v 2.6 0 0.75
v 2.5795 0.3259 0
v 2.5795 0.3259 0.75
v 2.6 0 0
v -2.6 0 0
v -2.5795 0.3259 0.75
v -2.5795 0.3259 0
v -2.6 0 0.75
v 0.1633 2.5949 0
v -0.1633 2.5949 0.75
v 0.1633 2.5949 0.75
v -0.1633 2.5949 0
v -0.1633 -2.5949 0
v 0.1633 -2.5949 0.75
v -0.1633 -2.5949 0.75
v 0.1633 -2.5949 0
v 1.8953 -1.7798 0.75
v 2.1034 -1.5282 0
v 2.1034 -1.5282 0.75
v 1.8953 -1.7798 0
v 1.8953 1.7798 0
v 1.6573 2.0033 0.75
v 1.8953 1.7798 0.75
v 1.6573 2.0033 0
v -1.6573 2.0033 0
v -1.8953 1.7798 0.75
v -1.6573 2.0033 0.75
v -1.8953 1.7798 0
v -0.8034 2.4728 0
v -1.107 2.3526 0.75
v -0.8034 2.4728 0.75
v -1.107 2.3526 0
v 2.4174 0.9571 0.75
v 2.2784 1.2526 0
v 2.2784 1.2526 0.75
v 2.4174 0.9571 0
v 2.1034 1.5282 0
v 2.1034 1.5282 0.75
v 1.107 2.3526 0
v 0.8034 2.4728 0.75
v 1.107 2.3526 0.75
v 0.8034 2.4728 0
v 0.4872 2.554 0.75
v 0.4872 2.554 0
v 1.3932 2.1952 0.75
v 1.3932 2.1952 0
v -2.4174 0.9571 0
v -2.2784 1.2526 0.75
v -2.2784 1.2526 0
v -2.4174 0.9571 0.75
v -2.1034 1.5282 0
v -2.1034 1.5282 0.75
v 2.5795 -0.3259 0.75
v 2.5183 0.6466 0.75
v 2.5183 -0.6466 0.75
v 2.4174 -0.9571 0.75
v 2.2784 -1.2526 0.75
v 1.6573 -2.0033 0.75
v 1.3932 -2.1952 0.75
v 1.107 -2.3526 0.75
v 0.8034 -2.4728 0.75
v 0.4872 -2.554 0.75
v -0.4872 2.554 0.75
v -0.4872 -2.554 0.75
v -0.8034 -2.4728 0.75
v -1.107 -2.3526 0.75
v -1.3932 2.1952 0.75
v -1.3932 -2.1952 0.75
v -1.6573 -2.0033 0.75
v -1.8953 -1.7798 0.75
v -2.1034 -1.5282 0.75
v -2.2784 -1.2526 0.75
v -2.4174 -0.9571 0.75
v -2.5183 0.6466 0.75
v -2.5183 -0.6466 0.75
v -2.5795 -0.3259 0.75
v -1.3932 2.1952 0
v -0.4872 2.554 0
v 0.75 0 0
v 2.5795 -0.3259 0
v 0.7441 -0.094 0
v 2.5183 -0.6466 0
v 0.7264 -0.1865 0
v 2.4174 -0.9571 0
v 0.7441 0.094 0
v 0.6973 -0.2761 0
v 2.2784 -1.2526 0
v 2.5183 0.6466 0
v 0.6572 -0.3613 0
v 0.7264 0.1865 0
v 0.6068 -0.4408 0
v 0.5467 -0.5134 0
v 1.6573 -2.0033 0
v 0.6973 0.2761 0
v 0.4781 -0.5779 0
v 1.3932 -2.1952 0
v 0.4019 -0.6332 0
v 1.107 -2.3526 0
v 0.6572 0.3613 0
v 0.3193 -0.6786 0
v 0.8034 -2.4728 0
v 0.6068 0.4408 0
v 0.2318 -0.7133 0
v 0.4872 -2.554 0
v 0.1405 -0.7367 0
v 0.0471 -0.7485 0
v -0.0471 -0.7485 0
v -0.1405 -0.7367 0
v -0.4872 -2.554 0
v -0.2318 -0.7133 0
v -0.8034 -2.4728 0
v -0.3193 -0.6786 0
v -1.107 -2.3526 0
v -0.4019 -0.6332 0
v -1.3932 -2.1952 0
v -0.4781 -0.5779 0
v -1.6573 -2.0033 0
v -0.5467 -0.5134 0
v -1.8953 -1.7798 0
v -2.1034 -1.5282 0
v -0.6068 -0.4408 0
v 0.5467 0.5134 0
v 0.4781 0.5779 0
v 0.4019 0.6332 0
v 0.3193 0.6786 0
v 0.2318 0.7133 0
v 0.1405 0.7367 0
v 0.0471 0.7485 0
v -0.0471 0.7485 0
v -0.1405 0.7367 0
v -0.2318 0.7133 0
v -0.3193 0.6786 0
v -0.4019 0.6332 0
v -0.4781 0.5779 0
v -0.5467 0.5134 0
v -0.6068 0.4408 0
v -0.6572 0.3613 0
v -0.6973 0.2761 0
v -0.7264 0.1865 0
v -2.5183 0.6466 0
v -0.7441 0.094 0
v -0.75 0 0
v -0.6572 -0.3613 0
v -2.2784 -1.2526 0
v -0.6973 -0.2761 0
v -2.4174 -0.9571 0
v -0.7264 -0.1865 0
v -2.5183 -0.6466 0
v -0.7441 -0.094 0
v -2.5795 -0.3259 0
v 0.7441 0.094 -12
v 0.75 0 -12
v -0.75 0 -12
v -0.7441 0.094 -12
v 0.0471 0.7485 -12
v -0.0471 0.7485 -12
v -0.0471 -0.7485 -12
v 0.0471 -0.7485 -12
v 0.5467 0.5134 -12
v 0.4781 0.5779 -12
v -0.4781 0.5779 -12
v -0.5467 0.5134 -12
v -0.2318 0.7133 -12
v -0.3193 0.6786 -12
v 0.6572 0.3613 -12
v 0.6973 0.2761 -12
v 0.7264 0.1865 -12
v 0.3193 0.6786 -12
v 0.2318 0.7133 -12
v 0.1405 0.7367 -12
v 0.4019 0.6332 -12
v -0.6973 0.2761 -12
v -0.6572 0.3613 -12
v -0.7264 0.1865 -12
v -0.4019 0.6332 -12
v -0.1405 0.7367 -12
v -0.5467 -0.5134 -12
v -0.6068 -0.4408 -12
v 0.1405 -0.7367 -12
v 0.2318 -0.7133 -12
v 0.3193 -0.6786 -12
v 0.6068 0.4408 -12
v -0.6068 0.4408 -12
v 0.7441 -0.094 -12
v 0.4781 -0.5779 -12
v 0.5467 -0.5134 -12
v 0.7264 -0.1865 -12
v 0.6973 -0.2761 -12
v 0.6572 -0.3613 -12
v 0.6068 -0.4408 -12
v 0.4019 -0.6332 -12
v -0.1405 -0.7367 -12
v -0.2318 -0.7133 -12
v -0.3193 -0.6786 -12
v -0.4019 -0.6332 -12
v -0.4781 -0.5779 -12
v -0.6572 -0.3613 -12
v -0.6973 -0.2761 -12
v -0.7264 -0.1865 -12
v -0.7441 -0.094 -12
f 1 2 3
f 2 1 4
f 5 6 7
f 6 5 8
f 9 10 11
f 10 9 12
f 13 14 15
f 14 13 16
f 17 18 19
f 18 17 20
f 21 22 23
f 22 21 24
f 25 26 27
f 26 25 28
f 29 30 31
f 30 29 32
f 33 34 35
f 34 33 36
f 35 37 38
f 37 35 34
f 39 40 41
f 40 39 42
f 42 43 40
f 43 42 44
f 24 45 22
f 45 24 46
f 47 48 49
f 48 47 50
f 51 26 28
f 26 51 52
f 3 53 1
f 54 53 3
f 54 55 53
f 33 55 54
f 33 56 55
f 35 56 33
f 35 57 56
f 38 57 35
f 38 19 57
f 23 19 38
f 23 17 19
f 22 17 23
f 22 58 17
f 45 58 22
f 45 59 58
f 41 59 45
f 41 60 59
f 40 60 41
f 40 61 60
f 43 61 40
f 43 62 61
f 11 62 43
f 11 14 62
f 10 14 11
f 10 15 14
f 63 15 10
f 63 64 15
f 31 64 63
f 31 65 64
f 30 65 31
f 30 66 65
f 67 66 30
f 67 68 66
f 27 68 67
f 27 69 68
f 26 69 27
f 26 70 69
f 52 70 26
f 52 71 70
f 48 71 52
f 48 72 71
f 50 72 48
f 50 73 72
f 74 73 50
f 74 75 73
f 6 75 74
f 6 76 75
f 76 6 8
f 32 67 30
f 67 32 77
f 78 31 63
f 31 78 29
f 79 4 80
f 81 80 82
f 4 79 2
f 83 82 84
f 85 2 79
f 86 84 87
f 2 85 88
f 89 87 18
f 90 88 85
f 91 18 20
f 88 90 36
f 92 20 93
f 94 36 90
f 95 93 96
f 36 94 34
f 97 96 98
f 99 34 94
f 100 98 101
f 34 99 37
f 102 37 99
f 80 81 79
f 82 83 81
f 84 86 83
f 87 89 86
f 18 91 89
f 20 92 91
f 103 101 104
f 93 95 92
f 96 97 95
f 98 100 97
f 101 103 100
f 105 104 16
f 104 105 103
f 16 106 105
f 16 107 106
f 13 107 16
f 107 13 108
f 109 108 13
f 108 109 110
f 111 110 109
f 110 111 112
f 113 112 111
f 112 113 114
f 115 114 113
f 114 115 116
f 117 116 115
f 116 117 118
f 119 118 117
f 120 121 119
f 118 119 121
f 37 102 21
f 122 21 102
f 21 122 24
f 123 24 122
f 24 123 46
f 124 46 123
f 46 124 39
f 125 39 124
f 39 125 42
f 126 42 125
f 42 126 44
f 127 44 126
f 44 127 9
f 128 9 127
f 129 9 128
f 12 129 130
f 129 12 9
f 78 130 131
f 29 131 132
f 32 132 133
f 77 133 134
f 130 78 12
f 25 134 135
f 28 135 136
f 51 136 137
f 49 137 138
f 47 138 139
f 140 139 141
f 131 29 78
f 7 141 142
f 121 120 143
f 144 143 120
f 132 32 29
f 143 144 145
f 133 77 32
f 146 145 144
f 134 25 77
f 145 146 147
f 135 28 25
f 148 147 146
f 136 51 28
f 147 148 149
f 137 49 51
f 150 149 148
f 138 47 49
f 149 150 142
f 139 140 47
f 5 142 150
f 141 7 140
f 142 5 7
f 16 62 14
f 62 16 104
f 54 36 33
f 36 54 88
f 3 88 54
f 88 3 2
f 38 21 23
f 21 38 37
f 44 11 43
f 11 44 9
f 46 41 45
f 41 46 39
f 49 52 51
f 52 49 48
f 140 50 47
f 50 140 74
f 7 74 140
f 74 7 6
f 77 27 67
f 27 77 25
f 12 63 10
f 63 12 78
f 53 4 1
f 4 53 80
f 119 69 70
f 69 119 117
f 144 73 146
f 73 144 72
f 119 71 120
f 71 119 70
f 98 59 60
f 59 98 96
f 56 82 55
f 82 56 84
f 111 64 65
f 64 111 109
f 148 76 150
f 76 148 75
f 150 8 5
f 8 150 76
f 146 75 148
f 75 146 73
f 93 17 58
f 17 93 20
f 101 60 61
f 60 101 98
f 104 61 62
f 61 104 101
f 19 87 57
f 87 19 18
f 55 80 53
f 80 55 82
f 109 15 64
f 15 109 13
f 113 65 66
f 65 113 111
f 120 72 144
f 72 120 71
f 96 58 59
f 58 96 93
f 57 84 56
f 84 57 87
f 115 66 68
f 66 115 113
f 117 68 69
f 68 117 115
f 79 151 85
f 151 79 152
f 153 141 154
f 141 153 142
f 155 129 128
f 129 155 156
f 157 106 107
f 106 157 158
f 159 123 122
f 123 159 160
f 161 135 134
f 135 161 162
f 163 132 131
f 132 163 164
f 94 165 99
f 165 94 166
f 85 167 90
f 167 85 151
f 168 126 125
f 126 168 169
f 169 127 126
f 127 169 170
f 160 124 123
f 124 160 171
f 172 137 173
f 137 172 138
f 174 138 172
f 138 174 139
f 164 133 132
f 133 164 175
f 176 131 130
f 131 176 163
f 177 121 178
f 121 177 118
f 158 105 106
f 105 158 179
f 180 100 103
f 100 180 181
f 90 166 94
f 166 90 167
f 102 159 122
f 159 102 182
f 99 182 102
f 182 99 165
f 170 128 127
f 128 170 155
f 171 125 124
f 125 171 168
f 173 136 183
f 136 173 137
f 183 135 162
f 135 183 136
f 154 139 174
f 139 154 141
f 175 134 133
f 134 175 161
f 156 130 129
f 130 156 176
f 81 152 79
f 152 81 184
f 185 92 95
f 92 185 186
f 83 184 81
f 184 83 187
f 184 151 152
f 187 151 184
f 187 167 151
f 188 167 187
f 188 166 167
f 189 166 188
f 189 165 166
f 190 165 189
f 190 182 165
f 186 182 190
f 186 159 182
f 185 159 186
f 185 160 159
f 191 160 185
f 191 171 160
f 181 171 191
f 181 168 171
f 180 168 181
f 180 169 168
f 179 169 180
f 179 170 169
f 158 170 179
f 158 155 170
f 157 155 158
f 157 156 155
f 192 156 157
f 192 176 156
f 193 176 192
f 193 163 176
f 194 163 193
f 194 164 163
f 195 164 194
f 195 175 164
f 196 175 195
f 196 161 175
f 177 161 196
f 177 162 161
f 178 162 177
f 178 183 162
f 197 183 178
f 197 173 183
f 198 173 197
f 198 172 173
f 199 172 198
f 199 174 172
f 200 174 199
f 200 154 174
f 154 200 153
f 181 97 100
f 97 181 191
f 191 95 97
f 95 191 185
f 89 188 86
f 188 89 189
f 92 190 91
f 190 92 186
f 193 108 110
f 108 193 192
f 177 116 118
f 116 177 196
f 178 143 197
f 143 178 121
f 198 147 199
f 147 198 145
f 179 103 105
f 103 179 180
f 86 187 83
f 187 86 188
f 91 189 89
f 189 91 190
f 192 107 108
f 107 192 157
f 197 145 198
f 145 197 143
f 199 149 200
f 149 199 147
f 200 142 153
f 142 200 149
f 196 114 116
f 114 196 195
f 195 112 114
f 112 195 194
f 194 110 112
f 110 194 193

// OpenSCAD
$fn = 50;


difference() {
	union() {
		translate(v = [0, 0, 0]) {
			rotate(a = [0, 0, 0]) {
				cylinder(h = 0.7500000000, r = 2.6000000000);
			}
		}
		translate(v = [0, 0, -12]) {
			rotate(a = [0, 0, 0]) {
				cylinder(h = 12, r = 0.7500000000);
			}
		}
	}
	union();
}
